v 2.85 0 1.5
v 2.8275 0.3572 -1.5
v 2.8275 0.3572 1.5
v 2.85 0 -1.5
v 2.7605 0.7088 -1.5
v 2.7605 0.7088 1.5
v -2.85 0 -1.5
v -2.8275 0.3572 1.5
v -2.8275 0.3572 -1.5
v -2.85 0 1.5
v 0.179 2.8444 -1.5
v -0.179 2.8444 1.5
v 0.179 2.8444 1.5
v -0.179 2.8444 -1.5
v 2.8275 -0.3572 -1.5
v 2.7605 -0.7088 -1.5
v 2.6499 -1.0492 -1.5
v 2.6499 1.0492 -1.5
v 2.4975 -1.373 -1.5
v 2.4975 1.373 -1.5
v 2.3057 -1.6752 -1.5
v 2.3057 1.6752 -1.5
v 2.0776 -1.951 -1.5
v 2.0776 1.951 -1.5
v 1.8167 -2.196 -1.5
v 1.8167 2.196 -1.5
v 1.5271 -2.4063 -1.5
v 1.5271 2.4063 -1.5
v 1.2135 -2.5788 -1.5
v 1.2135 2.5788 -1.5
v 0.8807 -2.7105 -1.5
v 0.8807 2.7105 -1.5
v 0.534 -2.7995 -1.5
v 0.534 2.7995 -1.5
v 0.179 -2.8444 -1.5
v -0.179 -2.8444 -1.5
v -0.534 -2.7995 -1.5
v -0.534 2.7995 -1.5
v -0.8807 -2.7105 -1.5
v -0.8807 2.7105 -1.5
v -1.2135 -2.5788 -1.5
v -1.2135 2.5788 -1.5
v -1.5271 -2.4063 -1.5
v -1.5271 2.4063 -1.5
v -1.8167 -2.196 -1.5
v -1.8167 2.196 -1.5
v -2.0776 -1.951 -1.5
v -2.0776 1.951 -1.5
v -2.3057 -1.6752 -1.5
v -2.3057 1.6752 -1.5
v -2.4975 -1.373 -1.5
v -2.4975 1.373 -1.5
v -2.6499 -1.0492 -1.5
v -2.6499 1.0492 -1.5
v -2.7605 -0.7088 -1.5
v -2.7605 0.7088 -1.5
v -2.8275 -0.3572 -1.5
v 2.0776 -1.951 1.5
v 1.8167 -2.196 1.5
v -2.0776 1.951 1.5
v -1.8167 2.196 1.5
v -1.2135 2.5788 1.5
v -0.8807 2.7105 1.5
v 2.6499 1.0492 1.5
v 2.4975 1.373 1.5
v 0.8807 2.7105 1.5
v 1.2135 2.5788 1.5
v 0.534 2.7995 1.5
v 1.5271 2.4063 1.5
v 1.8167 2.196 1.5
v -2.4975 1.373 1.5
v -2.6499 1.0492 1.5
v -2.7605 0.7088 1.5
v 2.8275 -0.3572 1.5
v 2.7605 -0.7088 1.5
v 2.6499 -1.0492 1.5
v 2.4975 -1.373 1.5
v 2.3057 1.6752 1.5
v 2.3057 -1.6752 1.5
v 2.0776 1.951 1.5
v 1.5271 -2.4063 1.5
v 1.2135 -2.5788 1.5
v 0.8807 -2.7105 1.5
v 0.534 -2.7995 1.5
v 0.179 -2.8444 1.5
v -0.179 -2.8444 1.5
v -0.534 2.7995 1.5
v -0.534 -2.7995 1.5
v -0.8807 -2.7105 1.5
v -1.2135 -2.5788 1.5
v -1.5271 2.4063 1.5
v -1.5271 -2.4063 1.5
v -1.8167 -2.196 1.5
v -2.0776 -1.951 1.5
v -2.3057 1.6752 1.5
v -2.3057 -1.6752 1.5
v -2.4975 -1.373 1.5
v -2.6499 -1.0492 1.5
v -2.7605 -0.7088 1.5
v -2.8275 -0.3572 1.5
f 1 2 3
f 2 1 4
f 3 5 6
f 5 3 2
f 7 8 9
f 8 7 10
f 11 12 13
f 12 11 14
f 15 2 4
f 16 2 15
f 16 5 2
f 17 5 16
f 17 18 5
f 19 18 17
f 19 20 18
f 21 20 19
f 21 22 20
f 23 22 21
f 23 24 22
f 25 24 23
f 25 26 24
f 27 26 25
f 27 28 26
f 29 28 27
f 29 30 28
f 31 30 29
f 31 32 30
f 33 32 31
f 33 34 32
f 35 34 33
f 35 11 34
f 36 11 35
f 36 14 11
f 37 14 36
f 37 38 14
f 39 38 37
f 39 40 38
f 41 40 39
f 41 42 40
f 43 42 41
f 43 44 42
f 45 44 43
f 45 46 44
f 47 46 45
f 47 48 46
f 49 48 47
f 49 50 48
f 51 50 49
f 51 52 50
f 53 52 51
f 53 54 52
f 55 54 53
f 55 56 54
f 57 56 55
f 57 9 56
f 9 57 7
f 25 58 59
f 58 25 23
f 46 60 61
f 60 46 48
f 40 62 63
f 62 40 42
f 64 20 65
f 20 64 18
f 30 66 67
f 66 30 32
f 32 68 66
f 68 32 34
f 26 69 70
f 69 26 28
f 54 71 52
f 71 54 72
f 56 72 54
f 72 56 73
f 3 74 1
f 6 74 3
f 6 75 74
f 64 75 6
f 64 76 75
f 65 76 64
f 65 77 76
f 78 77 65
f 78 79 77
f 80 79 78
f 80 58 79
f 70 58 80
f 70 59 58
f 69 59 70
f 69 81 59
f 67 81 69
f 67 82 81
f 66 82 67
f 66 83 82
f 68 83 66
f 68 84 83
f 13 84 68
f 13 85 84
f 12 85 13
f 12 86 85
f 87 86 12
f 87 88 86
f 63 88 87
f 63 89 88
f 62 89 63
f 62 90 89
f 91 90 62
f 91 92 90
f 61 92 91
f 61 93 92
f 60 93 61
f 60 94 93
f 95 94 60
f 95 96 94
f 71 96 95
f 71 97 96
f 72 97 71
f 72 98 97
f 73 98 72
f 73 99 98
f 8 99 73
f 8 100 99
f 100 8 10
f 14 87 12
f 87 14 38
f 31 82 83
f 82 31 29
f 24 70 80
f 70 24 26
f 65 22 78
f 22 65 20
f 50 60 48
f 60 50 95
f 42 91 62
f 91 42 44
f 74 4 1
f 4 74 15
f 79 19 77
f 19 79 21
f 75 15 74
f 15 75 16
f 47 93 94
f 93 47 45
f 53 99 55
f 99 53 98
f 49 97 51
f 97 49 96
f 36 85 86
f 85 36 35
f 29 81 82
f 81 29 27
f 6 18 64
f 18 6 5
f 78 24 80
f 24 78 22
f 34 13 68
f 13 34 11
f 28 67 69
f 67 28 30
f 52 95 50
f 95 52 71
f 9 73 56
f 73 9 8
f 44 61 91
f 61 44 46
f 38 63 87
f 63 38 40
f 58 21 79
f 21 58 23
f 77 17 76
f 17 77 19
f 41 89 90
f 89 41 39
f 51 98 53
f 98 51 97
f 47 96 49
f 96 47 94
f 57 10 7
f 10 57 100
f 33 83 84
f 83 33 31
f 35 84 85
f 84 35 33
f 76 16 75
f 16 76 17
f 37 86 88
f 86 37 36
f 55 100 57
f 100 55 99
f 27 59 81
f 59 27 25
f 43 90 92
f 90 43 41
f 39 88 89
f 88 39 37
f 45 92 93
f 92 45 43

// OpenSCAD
$fn = 50;


difference() {
	union() {
		translate(v = [0, 0, -1.5000000000]) {
			cylinder(h = 3, r = 2.8500000000);
		}
	}
	union() {
		translate(v = [0, 0, -100.0000000000]) {
			cylinder(h = 200, r = 0);
		}
	}
}
